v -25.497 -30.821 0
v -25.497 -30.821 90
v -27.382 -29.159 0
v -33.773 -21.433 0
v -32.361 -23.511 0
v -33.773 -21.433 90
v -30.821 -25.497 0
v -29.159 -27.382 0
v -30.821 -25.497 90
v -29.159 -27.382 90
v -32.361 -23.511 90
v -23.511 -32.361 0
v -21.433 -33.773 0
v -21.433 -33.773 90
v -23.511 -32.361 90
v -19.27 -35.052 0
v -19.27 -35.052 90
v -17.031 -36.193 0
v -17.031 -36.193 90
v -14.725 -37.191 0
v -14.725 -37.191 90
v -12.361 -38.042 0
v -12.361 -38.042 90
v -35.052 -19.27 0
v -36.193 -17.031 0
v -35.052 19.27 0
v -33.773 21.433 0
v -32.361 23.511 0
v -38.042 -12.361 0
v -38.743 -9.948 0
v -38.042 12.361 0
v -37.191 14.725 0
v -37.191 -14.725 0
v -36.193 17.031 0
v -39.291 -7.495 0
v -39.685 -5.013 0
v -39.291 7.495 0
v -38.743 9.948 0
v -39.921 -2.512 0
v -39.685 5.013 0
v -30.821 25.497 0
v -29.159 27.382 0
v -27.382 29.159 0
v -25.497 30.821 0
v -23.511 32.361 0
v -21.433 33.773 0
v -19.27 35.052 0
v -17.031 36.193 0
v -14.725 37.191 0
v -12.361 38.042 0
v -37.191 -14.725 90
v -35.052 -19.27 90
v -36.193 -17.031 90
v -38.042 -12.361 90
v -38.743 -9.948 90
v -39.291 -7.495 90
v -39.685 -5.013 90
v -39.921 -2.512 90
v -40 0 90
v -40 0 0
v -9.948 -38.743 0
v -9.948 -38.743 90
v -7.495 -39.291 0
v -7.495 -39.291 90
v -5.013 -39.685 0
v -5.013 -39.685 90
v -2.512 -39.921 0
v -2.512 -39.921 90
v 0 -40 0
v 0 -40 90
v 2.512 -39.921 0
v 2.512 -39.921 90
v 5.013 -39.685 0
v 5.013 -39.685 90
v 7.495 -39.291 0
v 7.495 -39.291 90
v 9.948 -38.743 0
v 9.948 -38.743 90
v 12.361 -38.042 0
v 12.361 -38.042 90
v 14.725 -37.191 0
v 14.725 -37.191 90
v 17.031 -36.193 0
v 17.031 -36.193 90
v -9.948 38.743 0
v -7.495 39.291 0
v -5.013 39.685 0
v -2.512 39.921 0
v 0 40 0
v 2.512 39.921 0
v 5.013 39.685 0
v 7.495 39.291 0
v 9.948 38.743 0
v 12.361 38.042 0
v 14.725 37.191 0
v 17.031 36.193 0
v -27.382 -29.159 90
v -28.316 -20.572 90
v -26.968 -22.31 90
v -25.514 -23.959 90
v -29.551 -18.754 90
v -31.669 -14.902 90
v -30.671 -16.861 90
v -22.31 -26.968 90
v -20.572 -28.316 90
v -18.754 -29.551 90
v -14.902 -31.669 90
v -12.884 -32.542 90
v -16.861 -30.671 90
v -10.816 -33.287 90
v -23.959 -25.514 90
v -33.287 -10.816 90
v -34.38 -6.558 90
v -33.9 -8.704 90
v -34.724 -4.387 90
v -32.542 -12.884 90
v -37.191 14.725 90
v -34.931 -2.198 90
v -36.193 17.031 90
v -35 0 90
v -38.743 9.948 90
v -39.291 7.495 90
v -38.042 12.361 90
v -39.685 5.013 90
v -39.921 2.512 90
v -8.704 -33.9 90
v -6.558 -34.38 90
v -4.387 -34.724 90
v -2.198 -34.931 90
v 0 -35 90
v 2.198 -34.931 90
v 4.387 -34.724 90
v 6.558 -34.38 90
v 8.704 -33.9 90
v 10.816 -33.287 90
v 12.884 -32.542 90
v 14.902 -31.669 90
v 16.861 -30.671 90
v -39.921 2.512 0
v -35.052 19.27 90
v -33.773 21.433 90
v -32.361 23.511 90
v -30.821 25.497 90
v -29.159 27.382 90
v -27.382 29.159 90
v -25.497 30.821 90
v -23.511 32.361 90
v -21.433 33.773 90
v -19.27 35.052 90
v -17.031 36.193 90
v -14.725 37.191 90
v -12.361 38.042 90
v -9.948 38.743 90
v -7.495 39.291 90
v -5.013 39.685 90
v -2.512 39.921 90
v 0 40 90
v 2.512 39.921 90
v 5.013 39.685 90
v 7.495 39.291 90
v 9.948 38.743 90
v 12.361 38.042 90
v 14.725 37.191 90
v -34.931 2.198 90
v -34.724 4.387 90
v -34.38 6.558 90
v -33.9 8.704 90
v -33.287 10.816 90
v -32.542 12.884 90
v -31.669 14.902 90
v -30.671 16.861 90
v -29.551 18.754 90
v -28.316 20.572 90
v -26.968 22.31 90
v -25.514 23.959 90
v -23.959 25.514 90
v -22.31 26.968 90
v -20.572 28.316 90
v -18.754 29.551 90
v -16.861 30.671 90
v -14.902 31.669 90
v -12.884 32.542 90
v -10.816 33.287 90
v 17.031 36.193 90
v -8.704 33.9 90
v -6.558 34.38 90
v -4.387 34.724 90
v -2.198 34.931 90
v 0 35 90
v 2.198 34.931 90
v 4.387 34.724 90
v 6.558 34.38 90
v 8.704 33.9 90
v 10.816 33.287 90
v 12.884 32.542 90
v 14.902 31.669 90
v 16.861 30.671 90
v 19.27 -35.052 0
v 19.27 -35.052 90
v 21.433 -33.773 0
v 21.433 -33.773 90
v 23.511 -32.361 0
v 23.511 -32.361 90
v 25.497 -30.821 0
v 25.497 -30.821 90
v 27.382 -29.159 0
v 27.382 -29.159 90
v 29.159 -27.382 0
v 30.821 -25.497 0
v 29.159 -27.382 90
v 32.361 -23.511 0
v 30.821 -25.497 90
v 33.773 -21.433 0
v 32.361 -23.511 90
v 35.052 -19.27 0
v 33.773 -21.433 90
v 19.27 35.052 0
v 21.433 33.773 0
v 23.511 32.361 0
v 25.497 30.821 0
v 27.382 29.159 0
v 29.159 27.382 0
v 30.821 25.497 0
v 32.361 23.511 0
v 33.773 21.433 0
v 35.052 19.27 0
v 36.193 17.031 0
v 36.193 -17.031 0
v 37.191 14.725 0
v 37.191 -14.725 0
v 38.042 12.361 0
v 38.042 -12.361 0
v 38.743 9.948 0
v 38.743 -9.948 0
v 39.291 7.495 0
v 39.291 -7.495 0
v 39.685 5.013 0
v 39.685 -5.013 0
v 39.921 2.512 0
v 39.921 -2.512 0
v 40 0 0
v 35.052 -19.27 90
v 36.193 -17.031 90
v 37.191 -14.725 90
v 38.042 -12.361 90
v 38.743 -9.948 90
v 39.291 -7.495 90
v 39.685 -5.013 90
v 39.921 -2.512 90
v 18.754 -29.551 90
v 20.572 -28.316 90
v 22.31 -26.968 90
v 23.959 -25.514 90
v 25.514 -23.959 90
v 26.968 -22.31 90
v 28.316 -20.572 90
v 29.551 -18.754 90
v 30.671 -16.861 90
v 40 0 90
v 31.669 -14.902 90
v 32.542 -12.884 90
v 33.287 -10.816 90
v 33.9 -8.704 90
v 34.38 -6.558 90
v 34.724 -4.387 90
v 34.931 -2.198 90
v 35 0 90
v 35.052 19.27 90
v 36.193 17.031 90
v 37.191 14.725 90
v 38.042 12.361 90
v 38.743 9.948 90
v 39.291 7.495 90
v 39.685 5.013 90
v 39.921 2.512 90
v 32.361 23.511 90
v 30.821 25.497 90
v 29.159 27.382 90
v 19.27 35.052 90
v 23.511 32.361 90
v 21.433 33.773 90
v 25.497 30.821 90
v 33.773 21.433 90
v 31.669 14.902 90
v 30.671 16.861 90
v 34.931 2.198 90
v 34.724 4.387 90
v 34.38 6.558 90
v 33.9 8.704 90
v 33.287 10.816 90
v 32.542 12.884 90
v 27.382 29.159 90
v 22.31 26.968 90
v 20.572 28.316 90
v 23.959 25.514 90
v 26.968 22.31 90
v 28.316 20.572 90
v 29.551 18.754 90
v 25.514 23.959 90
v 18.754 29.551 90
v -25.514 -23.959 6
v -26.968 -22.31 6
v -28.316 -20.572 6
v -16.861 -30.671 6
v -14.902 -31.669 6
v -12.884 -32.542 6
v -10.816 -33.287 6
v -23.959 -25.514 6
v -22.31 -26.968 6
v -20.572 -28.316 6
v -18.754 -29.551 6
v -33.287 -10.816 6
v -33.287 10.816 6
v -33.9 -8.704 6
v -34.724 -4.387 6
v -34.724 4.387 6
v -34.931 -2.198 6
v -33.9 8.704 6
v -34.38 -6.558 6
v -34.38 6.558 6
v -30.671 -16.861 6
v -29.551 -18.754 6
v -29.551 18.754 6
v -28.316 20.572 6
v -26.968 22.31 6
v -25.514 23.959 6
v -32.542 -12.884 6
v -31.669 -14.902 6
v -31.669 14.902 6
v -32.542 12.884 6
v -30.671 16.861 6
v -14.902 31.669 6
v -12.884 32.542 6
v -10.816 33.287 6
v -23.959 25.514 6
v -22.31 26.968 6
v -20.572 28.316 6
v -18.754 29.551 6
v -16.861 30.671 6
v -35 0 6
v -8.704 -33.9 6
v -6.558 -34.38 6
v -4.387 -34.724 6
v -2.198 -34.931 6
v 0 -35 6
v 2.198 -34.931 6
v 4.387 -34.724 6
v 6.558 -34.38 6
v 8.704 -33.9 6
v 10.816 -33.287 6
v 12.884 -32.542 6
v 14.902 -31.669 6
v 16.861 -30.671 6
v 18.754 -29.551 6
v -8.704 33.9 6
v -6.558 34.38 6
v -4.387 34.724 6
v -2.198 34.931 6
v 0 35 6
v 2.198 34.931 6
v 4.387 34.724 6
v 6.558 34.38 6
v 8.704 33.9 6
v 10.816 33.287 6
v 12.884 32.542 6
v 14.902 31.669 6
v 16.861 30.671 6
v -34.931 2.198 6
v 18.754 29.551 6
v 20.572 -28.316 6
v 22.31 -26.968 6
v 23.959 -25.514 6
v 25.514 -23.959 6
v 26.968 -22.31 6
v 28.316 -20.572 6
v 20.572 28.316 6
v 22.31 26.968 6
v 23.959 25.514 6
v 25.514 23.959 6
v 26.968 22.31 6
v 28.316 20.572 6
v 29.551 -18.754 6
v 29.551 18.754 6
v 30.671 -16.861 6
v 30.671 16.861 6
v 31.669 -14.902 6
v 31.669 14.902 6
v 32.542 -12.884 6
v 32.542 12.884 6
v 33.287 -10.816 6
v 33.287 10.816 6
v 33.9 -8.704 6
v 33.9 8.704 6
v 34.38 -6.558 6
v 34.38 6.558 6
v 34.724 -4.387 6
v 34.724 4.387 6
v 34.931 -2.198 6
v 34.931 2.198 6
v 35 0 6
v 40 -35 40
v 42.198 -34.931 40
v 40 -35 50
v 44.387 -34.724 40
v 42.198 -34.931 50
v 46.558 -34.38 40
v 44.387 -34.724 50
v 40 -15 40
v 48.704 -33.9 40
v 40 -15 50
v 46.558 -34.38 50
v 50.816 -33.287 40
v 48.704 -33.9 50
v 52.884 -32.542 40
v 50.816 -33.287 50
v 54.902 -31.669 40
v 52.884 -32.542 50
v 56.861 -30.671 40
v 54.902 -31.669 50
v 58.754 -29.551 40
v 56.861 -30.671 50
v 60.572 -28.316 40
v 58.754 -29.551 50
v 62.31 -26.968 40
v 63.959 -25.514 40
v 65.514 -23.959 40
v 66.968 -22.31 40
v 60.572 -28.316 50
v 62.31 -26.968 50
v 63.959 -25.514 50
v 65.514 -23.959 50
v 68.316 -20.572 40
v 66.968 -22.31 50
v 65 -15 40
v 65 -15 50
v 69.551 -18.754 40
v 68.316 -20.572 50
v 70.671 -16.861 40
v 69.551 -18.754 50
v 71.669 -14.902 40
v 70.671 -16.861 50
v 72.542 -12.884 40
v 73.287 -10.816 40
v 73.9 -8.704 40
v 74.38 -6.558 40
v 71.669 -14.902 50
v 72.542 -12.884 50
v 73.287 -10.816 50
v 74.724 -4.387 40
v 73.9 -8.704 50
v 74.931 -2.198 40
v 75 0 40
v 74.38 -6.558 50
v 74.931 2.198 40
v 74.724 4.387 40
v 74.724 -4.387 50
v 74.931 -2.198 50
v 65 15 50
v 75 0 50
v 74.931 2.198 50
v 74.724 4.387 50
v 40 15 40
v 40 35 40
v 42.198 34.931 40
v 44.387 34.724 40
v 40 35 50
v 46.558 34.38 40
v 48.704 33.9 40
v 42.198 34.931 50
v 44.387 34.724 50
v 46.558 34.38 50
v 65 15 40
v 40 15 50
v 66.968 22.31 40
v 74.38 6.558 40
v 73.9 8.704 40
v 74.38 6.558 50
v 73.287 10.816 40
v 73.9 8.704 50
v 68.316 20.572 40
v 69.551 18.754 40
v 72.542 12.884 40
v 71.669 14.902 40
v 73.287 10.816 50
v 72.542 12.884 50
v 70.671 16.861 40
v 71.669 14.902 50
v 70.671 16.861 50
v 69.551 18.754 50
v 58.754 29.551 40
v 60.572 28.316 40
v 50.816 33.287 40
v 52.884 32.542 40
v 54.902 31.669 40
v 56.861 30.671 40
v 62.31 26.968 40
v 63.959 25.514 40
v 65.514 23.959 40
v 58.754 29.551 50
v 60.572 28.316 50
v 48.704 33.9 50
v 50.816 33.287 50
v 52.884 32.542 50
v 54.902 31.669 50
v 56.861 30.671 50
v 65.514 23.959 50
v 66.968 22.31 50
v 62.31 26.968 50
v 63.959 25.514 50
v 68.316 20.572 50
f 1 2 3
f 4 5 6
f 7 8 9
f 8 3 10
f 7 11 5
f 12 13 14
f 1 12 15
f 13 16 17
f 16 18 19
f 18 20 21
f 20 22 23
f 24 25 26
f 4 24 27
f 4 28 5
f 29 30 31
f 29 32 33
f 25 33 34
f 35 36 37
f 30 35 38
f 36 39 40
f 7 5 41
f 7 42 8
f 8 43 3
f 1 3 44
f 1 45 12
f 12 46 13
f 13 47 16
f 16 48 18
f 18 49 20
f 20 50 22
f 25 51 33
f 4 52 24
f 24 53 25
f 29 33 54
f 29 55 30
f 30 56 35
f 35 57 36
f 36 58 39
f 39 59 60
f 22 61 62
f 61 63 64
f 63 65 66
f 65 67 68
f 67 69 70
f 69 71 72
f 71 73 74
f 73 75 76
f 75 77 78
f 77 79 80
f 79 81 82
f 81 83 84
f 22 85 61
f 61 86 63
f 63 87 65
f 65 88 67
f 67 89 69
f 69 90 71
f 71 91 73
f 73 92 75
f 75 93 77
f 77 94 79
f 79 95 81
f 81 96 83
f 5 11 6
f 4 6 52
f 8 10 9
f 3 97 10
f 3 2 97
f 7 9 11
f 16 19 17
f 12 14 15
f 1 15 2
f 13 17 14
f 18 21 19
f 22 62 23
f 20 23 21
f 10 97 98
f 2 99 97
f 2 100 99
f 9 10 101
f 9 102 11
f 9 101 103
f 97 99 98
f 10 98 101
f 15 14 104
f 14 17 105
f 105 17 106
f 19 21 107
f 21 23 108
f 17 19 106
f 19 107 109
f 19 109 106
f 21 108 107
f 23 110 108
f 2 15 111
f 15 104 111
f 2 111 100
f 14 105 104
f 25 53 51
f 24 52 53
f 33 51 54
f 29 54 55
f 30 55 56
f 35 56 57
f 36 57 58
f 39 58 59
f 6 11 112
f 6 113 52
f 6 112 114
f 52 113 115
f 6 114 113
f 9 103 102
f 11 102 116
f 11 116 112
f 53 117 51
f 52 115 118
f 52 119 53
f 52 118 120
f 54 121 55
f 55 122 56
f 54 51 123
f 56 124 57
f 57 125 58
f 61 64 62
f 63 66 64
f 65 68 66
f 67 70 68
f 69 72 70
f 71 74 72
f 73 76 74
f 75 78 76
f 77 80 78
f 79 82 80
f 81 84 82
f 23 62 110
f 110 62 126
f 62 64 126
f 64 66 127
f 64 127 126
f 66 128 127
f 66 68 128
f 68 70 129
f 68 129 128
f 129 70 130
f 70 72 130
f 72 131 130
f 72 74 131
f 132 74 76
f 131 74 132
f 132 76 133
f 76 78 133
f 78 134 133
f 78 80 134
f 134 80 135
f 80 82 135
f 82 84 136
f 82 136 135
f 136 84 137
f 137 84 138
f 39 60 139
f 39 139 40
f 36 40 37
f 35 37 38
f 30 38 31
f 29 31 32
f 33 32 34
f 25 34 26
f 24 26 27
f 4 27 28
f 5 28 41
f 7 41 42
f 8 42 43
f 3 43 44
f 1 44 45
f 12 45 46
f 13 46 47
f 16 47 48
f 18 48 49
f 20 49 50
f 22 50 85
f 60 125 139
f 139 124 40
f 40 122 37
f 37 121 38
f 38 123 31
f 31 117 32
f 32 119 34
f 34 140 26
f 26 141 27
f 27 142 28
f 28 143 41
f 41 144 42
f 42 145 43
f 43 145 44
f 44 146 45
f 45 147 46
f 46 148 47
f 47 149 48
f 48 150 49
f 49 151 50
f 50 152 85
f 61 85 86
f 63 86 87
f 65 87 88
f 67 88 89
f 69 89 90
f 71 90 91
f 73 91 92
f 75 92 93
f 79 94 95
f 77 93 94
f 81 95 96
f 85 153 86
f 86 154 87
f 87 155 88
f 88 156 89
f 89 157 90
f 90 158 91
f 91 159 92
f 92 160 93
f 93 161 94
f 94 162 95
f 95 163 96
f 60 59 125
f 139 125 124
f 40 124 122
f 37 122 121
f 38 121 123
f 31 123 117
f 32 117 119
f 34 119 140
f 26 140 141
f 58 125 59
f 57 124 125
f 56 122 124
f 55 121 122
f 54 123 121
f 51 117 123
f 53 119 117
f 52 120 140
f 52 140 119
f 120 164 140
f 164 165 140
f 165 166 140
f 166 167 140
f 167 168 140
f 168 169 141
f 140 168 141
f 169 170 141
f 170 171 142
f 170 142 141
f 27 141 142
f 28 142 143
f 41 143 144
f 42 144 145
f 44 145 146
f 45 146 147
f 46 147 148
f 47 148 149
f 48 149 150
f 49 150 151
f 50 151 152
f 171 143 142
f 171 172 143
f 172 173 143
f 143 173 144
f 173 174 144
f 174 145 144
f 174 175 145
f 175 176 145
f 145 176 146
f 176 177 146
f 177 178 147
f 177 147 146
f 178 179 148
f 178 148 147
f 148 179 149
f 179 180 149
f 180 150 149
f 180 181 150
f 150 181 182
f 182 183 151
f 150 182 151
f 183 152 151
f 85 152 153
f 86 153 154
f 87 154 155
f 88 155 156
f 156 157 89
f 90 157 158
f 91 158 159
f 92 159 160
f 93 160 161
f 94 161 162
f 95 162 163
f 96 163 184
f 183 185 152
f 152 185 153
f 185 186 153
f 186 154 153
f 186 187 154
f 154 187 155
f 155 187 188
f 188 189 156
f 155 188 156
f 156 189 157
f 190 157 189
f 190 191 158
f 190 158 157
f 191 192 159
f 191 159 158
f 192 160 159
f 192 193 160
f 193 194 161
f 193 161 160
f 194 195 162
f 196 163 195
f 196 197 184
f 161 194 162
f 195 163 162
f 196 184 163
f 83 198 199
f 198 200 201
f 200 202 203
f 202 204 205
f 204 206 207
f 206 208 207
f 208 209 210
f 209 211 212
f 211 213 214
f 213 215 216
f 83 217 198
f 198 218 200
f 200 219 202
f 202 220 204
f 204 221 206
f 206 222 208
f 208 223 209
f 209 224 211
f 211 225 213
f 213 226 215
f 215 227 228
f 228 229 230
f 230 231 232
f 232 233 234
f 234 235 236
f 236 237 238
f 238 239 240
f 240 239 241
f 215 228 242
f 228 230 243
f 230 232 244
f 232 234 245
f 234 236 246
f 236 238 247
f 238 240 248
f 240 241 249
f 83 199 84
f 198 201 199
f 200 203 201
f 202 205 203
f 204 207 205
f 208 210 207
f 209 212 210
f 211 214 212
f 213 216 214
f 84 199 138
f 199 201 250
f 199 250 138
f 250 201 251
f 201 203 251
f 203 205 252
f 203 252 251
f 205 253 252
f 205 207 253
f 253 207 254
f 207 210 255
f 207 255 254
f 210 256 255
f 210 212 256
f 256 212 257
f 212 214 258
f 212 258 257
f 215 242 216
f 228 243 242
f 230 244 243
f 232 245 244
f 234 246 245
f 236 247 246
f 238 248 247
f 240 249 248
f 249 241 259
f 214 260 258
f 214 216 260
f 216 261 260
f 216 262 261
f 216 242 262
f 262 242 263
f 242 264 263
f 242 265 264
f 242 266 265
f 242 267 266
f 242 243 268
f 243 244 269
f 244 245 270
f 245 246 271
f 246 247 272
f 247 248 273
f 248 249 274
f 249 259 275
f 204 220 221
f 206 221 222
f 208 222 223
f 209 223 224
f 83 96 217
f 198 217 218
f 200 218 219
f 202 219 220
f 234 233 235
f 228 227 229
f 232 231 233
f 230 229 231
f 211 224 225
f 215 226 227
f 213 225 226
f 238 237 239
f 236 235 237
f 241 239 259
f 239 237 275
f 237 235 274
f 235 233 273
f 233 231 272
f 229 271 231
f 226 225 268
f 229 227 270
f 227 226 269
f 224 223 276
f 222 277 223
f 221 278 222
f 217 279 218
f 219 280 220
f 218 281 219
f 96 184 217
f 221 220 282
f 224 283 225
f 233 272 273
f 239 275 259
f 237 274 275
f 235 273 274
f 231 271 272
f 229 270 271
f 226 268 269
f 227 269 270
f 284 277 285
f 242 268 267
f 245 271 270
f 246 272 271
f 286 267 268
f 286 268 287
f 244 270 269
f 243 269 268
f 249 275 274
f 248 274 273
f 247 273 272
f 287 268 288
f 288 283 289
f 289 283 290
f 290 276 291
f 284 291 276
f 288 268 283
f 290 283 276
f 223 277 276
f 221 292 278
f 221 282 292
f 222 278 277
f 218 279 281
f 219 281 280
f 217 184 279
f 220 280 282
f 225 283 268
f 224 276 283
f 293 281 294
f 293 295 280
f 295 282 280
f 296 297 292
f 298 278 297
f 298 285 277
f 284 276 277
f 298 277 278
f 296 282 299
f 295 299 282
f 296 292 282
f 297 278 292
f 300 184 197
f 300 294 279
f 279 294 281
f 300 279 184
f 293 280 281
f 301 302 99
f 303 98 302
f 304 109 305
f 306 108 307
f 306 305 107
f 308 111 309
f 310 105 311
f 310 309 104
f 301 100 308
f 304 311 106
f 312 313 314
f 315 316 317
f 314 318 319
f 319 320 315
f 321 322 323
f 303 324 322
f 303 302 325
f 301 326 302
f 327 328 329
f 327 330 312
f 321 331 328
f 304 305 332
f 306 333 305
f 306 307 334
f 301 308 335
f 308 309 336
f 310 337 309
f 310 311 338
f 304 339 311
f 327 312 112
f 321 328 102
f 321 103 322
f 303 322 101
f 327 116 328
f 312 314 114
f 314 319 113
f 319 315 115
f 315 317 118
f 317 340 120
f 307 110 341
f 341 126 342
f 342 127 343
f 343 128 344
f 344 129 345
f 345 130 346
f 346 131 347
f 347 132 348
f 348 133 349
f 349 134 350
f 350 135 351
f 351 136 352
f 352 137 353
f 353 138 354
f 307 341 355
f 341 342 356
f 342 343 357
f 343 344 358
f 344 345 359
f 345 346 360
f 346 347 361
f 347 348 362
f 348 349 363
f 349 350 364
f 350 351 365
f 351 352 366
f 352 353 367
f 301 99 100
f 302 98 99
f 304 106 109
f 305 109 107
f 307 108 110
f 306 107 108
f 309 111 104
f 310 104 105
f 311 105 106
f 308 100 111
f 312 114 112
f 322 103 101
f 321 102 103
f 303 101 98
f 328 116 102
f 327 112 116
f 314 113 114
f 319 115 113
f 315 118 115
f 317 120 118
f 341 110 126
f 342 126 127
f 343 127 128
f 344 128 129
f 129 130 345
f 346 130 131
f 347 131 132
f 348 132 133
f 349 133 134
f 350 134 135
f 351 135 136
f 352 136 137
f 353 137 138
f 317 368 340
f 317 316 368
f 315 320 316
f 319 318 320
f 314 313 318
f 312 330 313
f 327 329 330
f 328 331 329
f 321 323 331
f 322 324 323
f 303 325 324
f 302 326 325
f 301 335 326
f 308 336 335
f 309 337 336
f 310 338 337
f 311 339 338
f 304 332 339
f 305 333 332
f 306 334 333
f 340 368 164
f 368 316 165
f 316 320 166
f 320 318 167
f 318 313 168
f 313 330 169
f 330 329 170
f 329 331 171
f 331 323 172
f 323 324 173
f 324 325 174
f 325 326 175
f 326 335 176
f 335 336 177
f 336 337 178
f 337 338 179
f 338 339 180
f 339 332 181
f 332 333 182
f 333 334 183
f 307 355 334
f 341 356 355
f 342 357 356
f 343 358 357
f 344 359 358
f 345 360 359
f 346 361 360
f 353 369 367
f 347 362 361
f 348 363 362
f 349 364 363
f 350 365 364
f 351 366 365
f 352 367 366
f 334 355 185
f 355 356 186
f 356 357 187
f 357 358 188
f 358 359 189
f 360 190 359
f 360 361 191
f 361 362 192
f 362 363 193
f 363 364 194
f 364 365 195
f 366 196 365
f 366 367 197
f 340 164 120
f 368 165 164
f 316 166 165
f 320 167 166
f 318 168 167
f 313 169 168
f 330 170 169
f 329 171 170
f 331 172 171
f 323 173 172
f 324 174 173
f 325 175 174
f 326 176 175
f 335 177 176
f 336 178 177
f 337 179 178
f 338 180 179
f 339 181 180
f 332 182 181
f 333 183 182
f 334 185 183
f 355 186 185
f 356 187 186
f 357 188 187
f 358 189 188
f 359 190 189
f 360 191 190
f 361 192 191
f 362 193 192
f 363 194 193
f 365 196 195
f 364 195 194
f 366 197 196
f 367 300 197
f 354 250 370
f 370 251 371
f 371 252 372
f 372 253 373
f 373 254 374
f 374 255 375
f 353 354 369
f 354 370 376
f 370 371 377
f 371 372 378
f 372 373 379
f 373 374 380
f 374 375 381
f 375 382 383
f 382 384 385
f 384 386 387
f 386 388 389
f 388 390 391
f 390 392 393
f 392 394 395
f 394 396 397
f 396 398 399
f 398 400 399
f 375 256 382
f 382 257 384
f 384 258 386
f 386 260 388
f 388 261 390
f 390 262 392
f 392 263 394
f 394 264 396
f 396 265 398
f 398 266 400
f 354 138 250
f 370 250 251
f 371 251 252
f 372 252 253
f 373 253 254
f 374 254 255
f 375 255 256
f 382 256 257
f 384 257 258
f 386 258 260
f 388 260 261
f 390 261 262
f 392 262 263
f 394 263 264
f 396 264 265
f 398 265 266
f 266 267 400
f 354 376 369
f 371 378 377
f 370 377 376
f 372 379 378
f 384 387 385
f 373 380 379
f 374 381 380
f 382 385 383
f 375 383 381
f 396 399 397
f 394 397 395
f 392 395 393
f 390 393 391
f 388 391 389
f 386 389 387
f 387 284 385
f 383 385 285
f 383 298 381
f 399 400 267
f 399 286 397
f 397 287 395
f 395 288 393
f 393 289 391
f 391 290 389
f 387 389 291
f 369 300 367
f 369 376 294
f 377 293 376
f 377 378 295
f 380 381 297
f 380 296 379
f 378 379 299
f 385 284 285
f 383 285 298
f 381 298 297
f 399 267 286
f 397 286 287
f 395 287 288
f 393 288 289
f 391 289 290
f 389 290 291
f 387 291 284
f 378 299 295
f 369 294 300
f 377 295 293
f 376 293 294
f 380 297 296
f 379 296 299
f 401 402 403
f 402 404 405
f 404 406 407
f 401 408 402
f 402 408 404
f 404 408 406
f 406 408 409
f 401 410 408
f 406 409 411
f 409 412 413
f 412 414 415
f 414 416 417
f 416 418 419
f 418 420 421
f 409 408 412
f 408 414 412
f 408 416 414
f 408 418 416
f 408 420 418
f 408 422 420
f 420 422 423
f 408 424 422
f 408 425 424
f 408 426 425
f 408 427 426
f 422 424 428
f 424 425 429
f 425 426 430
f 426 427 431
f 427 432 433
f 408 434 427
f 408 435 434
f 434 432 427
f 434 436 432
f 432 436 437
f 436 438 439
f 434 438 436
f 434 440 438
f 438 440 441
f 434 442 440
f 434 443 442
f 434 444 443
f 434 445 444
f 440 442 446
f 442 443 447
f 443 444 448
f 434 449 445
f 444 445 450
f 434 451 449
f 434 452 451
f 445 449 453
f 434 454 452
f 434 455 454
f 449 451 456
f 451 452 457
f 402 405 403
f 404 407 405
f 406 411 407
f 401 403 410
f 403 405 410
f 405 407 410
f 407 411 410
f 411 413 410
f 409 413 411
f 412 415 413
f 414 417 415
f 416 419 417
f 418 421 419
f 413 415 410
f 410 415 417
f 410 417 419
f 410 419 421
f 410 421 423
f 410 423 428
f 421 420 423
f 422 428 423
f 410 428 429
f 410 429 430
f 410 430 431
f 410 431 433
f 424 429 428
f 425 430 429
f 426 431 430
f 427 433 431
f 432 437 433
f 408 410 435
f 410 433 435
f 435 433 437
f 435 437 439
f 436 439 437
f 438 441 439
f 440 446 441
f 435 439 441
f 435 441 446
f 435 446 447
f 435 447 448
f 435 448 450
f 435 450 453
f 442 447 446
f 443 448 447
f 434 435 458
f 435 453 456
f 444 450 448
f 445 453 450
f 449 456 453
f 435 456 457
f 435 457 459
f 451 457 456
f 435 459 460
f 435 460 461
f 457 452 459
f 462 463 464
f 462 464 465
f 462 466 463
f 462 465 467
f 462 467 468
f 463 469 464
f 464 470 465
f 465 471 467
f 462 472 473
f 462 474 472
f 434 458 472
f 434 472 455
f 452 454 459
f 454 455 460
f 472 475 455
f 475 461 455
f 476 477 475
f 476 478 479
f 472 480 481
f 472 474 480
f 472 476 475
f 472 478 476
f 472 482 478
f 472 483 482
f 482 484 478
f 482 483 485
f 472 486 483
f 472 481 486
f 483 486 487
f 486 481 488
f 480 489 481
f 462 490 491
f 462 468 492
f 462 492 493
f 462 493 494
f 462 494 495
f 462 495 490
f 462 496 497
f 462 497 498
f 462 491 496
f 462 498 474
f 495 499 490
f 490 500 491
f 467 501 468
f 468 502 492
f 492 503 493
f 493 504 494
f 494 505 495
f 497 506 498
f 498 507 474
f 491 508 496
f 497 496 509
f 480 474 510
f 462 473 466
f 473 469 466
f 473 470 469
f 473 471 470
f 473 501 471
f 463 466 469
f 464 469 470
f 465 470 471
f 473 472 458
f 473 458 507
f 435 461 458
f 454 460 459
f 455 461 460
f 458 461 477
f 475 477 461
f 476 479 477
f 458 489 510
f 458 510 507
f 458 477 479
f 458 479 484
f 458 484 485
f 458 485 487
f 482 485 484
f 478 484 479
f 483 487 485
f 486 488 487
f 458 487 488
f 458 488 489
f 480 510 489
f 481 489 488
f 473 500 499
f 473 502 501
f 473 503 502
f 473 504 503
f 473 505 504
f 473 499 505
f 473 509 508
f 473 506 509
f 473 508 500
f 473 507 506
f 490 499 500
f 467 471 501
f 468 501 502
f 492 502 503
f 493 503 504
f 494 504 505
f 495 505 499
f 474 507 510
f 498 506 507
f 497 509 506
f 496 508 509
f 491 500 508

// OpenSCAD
$fn = 100;

union() {
    // --- 本体 (Mug Body) ---
    difference() {
        // 外径 80mm (半径 40mm) の円筒
        cylinder(h = 90, r = 40);
        
        // 内径 70mm (半径 35mm) の中空部分
        // 底面の厚み 6mm を確保するため z=6 から開始
        translate([0, 0, 6])
            cylinder(h = 85, r = 35);
    }

    // --- 取手 (Handle) ---
    // マグの +X 軸方向、高さ中央 (45mm) に配置
    translate([40, 0, 45])
    // 断面の厚み（Y軸方向）を 10mm とし、中央に配置
    linear_extrude(height = 10, center = true)
    difference() {
        // 外側が半円の形状を作成
        intersection() {
            circle(r = 35);
            // 半円にするため、x > 0 の領域のみを残す
            translate([0, -35]) square([35, 70]);
        }
        
        // 内側の空間 (高さ 30mm × 幅 25mm) を切り抜く
        // 本体側 (x=0) から内側へ 25mm、高さ中央から上下に 15mm
        translate([0, -15]) square([25, 30]);
    }
}
